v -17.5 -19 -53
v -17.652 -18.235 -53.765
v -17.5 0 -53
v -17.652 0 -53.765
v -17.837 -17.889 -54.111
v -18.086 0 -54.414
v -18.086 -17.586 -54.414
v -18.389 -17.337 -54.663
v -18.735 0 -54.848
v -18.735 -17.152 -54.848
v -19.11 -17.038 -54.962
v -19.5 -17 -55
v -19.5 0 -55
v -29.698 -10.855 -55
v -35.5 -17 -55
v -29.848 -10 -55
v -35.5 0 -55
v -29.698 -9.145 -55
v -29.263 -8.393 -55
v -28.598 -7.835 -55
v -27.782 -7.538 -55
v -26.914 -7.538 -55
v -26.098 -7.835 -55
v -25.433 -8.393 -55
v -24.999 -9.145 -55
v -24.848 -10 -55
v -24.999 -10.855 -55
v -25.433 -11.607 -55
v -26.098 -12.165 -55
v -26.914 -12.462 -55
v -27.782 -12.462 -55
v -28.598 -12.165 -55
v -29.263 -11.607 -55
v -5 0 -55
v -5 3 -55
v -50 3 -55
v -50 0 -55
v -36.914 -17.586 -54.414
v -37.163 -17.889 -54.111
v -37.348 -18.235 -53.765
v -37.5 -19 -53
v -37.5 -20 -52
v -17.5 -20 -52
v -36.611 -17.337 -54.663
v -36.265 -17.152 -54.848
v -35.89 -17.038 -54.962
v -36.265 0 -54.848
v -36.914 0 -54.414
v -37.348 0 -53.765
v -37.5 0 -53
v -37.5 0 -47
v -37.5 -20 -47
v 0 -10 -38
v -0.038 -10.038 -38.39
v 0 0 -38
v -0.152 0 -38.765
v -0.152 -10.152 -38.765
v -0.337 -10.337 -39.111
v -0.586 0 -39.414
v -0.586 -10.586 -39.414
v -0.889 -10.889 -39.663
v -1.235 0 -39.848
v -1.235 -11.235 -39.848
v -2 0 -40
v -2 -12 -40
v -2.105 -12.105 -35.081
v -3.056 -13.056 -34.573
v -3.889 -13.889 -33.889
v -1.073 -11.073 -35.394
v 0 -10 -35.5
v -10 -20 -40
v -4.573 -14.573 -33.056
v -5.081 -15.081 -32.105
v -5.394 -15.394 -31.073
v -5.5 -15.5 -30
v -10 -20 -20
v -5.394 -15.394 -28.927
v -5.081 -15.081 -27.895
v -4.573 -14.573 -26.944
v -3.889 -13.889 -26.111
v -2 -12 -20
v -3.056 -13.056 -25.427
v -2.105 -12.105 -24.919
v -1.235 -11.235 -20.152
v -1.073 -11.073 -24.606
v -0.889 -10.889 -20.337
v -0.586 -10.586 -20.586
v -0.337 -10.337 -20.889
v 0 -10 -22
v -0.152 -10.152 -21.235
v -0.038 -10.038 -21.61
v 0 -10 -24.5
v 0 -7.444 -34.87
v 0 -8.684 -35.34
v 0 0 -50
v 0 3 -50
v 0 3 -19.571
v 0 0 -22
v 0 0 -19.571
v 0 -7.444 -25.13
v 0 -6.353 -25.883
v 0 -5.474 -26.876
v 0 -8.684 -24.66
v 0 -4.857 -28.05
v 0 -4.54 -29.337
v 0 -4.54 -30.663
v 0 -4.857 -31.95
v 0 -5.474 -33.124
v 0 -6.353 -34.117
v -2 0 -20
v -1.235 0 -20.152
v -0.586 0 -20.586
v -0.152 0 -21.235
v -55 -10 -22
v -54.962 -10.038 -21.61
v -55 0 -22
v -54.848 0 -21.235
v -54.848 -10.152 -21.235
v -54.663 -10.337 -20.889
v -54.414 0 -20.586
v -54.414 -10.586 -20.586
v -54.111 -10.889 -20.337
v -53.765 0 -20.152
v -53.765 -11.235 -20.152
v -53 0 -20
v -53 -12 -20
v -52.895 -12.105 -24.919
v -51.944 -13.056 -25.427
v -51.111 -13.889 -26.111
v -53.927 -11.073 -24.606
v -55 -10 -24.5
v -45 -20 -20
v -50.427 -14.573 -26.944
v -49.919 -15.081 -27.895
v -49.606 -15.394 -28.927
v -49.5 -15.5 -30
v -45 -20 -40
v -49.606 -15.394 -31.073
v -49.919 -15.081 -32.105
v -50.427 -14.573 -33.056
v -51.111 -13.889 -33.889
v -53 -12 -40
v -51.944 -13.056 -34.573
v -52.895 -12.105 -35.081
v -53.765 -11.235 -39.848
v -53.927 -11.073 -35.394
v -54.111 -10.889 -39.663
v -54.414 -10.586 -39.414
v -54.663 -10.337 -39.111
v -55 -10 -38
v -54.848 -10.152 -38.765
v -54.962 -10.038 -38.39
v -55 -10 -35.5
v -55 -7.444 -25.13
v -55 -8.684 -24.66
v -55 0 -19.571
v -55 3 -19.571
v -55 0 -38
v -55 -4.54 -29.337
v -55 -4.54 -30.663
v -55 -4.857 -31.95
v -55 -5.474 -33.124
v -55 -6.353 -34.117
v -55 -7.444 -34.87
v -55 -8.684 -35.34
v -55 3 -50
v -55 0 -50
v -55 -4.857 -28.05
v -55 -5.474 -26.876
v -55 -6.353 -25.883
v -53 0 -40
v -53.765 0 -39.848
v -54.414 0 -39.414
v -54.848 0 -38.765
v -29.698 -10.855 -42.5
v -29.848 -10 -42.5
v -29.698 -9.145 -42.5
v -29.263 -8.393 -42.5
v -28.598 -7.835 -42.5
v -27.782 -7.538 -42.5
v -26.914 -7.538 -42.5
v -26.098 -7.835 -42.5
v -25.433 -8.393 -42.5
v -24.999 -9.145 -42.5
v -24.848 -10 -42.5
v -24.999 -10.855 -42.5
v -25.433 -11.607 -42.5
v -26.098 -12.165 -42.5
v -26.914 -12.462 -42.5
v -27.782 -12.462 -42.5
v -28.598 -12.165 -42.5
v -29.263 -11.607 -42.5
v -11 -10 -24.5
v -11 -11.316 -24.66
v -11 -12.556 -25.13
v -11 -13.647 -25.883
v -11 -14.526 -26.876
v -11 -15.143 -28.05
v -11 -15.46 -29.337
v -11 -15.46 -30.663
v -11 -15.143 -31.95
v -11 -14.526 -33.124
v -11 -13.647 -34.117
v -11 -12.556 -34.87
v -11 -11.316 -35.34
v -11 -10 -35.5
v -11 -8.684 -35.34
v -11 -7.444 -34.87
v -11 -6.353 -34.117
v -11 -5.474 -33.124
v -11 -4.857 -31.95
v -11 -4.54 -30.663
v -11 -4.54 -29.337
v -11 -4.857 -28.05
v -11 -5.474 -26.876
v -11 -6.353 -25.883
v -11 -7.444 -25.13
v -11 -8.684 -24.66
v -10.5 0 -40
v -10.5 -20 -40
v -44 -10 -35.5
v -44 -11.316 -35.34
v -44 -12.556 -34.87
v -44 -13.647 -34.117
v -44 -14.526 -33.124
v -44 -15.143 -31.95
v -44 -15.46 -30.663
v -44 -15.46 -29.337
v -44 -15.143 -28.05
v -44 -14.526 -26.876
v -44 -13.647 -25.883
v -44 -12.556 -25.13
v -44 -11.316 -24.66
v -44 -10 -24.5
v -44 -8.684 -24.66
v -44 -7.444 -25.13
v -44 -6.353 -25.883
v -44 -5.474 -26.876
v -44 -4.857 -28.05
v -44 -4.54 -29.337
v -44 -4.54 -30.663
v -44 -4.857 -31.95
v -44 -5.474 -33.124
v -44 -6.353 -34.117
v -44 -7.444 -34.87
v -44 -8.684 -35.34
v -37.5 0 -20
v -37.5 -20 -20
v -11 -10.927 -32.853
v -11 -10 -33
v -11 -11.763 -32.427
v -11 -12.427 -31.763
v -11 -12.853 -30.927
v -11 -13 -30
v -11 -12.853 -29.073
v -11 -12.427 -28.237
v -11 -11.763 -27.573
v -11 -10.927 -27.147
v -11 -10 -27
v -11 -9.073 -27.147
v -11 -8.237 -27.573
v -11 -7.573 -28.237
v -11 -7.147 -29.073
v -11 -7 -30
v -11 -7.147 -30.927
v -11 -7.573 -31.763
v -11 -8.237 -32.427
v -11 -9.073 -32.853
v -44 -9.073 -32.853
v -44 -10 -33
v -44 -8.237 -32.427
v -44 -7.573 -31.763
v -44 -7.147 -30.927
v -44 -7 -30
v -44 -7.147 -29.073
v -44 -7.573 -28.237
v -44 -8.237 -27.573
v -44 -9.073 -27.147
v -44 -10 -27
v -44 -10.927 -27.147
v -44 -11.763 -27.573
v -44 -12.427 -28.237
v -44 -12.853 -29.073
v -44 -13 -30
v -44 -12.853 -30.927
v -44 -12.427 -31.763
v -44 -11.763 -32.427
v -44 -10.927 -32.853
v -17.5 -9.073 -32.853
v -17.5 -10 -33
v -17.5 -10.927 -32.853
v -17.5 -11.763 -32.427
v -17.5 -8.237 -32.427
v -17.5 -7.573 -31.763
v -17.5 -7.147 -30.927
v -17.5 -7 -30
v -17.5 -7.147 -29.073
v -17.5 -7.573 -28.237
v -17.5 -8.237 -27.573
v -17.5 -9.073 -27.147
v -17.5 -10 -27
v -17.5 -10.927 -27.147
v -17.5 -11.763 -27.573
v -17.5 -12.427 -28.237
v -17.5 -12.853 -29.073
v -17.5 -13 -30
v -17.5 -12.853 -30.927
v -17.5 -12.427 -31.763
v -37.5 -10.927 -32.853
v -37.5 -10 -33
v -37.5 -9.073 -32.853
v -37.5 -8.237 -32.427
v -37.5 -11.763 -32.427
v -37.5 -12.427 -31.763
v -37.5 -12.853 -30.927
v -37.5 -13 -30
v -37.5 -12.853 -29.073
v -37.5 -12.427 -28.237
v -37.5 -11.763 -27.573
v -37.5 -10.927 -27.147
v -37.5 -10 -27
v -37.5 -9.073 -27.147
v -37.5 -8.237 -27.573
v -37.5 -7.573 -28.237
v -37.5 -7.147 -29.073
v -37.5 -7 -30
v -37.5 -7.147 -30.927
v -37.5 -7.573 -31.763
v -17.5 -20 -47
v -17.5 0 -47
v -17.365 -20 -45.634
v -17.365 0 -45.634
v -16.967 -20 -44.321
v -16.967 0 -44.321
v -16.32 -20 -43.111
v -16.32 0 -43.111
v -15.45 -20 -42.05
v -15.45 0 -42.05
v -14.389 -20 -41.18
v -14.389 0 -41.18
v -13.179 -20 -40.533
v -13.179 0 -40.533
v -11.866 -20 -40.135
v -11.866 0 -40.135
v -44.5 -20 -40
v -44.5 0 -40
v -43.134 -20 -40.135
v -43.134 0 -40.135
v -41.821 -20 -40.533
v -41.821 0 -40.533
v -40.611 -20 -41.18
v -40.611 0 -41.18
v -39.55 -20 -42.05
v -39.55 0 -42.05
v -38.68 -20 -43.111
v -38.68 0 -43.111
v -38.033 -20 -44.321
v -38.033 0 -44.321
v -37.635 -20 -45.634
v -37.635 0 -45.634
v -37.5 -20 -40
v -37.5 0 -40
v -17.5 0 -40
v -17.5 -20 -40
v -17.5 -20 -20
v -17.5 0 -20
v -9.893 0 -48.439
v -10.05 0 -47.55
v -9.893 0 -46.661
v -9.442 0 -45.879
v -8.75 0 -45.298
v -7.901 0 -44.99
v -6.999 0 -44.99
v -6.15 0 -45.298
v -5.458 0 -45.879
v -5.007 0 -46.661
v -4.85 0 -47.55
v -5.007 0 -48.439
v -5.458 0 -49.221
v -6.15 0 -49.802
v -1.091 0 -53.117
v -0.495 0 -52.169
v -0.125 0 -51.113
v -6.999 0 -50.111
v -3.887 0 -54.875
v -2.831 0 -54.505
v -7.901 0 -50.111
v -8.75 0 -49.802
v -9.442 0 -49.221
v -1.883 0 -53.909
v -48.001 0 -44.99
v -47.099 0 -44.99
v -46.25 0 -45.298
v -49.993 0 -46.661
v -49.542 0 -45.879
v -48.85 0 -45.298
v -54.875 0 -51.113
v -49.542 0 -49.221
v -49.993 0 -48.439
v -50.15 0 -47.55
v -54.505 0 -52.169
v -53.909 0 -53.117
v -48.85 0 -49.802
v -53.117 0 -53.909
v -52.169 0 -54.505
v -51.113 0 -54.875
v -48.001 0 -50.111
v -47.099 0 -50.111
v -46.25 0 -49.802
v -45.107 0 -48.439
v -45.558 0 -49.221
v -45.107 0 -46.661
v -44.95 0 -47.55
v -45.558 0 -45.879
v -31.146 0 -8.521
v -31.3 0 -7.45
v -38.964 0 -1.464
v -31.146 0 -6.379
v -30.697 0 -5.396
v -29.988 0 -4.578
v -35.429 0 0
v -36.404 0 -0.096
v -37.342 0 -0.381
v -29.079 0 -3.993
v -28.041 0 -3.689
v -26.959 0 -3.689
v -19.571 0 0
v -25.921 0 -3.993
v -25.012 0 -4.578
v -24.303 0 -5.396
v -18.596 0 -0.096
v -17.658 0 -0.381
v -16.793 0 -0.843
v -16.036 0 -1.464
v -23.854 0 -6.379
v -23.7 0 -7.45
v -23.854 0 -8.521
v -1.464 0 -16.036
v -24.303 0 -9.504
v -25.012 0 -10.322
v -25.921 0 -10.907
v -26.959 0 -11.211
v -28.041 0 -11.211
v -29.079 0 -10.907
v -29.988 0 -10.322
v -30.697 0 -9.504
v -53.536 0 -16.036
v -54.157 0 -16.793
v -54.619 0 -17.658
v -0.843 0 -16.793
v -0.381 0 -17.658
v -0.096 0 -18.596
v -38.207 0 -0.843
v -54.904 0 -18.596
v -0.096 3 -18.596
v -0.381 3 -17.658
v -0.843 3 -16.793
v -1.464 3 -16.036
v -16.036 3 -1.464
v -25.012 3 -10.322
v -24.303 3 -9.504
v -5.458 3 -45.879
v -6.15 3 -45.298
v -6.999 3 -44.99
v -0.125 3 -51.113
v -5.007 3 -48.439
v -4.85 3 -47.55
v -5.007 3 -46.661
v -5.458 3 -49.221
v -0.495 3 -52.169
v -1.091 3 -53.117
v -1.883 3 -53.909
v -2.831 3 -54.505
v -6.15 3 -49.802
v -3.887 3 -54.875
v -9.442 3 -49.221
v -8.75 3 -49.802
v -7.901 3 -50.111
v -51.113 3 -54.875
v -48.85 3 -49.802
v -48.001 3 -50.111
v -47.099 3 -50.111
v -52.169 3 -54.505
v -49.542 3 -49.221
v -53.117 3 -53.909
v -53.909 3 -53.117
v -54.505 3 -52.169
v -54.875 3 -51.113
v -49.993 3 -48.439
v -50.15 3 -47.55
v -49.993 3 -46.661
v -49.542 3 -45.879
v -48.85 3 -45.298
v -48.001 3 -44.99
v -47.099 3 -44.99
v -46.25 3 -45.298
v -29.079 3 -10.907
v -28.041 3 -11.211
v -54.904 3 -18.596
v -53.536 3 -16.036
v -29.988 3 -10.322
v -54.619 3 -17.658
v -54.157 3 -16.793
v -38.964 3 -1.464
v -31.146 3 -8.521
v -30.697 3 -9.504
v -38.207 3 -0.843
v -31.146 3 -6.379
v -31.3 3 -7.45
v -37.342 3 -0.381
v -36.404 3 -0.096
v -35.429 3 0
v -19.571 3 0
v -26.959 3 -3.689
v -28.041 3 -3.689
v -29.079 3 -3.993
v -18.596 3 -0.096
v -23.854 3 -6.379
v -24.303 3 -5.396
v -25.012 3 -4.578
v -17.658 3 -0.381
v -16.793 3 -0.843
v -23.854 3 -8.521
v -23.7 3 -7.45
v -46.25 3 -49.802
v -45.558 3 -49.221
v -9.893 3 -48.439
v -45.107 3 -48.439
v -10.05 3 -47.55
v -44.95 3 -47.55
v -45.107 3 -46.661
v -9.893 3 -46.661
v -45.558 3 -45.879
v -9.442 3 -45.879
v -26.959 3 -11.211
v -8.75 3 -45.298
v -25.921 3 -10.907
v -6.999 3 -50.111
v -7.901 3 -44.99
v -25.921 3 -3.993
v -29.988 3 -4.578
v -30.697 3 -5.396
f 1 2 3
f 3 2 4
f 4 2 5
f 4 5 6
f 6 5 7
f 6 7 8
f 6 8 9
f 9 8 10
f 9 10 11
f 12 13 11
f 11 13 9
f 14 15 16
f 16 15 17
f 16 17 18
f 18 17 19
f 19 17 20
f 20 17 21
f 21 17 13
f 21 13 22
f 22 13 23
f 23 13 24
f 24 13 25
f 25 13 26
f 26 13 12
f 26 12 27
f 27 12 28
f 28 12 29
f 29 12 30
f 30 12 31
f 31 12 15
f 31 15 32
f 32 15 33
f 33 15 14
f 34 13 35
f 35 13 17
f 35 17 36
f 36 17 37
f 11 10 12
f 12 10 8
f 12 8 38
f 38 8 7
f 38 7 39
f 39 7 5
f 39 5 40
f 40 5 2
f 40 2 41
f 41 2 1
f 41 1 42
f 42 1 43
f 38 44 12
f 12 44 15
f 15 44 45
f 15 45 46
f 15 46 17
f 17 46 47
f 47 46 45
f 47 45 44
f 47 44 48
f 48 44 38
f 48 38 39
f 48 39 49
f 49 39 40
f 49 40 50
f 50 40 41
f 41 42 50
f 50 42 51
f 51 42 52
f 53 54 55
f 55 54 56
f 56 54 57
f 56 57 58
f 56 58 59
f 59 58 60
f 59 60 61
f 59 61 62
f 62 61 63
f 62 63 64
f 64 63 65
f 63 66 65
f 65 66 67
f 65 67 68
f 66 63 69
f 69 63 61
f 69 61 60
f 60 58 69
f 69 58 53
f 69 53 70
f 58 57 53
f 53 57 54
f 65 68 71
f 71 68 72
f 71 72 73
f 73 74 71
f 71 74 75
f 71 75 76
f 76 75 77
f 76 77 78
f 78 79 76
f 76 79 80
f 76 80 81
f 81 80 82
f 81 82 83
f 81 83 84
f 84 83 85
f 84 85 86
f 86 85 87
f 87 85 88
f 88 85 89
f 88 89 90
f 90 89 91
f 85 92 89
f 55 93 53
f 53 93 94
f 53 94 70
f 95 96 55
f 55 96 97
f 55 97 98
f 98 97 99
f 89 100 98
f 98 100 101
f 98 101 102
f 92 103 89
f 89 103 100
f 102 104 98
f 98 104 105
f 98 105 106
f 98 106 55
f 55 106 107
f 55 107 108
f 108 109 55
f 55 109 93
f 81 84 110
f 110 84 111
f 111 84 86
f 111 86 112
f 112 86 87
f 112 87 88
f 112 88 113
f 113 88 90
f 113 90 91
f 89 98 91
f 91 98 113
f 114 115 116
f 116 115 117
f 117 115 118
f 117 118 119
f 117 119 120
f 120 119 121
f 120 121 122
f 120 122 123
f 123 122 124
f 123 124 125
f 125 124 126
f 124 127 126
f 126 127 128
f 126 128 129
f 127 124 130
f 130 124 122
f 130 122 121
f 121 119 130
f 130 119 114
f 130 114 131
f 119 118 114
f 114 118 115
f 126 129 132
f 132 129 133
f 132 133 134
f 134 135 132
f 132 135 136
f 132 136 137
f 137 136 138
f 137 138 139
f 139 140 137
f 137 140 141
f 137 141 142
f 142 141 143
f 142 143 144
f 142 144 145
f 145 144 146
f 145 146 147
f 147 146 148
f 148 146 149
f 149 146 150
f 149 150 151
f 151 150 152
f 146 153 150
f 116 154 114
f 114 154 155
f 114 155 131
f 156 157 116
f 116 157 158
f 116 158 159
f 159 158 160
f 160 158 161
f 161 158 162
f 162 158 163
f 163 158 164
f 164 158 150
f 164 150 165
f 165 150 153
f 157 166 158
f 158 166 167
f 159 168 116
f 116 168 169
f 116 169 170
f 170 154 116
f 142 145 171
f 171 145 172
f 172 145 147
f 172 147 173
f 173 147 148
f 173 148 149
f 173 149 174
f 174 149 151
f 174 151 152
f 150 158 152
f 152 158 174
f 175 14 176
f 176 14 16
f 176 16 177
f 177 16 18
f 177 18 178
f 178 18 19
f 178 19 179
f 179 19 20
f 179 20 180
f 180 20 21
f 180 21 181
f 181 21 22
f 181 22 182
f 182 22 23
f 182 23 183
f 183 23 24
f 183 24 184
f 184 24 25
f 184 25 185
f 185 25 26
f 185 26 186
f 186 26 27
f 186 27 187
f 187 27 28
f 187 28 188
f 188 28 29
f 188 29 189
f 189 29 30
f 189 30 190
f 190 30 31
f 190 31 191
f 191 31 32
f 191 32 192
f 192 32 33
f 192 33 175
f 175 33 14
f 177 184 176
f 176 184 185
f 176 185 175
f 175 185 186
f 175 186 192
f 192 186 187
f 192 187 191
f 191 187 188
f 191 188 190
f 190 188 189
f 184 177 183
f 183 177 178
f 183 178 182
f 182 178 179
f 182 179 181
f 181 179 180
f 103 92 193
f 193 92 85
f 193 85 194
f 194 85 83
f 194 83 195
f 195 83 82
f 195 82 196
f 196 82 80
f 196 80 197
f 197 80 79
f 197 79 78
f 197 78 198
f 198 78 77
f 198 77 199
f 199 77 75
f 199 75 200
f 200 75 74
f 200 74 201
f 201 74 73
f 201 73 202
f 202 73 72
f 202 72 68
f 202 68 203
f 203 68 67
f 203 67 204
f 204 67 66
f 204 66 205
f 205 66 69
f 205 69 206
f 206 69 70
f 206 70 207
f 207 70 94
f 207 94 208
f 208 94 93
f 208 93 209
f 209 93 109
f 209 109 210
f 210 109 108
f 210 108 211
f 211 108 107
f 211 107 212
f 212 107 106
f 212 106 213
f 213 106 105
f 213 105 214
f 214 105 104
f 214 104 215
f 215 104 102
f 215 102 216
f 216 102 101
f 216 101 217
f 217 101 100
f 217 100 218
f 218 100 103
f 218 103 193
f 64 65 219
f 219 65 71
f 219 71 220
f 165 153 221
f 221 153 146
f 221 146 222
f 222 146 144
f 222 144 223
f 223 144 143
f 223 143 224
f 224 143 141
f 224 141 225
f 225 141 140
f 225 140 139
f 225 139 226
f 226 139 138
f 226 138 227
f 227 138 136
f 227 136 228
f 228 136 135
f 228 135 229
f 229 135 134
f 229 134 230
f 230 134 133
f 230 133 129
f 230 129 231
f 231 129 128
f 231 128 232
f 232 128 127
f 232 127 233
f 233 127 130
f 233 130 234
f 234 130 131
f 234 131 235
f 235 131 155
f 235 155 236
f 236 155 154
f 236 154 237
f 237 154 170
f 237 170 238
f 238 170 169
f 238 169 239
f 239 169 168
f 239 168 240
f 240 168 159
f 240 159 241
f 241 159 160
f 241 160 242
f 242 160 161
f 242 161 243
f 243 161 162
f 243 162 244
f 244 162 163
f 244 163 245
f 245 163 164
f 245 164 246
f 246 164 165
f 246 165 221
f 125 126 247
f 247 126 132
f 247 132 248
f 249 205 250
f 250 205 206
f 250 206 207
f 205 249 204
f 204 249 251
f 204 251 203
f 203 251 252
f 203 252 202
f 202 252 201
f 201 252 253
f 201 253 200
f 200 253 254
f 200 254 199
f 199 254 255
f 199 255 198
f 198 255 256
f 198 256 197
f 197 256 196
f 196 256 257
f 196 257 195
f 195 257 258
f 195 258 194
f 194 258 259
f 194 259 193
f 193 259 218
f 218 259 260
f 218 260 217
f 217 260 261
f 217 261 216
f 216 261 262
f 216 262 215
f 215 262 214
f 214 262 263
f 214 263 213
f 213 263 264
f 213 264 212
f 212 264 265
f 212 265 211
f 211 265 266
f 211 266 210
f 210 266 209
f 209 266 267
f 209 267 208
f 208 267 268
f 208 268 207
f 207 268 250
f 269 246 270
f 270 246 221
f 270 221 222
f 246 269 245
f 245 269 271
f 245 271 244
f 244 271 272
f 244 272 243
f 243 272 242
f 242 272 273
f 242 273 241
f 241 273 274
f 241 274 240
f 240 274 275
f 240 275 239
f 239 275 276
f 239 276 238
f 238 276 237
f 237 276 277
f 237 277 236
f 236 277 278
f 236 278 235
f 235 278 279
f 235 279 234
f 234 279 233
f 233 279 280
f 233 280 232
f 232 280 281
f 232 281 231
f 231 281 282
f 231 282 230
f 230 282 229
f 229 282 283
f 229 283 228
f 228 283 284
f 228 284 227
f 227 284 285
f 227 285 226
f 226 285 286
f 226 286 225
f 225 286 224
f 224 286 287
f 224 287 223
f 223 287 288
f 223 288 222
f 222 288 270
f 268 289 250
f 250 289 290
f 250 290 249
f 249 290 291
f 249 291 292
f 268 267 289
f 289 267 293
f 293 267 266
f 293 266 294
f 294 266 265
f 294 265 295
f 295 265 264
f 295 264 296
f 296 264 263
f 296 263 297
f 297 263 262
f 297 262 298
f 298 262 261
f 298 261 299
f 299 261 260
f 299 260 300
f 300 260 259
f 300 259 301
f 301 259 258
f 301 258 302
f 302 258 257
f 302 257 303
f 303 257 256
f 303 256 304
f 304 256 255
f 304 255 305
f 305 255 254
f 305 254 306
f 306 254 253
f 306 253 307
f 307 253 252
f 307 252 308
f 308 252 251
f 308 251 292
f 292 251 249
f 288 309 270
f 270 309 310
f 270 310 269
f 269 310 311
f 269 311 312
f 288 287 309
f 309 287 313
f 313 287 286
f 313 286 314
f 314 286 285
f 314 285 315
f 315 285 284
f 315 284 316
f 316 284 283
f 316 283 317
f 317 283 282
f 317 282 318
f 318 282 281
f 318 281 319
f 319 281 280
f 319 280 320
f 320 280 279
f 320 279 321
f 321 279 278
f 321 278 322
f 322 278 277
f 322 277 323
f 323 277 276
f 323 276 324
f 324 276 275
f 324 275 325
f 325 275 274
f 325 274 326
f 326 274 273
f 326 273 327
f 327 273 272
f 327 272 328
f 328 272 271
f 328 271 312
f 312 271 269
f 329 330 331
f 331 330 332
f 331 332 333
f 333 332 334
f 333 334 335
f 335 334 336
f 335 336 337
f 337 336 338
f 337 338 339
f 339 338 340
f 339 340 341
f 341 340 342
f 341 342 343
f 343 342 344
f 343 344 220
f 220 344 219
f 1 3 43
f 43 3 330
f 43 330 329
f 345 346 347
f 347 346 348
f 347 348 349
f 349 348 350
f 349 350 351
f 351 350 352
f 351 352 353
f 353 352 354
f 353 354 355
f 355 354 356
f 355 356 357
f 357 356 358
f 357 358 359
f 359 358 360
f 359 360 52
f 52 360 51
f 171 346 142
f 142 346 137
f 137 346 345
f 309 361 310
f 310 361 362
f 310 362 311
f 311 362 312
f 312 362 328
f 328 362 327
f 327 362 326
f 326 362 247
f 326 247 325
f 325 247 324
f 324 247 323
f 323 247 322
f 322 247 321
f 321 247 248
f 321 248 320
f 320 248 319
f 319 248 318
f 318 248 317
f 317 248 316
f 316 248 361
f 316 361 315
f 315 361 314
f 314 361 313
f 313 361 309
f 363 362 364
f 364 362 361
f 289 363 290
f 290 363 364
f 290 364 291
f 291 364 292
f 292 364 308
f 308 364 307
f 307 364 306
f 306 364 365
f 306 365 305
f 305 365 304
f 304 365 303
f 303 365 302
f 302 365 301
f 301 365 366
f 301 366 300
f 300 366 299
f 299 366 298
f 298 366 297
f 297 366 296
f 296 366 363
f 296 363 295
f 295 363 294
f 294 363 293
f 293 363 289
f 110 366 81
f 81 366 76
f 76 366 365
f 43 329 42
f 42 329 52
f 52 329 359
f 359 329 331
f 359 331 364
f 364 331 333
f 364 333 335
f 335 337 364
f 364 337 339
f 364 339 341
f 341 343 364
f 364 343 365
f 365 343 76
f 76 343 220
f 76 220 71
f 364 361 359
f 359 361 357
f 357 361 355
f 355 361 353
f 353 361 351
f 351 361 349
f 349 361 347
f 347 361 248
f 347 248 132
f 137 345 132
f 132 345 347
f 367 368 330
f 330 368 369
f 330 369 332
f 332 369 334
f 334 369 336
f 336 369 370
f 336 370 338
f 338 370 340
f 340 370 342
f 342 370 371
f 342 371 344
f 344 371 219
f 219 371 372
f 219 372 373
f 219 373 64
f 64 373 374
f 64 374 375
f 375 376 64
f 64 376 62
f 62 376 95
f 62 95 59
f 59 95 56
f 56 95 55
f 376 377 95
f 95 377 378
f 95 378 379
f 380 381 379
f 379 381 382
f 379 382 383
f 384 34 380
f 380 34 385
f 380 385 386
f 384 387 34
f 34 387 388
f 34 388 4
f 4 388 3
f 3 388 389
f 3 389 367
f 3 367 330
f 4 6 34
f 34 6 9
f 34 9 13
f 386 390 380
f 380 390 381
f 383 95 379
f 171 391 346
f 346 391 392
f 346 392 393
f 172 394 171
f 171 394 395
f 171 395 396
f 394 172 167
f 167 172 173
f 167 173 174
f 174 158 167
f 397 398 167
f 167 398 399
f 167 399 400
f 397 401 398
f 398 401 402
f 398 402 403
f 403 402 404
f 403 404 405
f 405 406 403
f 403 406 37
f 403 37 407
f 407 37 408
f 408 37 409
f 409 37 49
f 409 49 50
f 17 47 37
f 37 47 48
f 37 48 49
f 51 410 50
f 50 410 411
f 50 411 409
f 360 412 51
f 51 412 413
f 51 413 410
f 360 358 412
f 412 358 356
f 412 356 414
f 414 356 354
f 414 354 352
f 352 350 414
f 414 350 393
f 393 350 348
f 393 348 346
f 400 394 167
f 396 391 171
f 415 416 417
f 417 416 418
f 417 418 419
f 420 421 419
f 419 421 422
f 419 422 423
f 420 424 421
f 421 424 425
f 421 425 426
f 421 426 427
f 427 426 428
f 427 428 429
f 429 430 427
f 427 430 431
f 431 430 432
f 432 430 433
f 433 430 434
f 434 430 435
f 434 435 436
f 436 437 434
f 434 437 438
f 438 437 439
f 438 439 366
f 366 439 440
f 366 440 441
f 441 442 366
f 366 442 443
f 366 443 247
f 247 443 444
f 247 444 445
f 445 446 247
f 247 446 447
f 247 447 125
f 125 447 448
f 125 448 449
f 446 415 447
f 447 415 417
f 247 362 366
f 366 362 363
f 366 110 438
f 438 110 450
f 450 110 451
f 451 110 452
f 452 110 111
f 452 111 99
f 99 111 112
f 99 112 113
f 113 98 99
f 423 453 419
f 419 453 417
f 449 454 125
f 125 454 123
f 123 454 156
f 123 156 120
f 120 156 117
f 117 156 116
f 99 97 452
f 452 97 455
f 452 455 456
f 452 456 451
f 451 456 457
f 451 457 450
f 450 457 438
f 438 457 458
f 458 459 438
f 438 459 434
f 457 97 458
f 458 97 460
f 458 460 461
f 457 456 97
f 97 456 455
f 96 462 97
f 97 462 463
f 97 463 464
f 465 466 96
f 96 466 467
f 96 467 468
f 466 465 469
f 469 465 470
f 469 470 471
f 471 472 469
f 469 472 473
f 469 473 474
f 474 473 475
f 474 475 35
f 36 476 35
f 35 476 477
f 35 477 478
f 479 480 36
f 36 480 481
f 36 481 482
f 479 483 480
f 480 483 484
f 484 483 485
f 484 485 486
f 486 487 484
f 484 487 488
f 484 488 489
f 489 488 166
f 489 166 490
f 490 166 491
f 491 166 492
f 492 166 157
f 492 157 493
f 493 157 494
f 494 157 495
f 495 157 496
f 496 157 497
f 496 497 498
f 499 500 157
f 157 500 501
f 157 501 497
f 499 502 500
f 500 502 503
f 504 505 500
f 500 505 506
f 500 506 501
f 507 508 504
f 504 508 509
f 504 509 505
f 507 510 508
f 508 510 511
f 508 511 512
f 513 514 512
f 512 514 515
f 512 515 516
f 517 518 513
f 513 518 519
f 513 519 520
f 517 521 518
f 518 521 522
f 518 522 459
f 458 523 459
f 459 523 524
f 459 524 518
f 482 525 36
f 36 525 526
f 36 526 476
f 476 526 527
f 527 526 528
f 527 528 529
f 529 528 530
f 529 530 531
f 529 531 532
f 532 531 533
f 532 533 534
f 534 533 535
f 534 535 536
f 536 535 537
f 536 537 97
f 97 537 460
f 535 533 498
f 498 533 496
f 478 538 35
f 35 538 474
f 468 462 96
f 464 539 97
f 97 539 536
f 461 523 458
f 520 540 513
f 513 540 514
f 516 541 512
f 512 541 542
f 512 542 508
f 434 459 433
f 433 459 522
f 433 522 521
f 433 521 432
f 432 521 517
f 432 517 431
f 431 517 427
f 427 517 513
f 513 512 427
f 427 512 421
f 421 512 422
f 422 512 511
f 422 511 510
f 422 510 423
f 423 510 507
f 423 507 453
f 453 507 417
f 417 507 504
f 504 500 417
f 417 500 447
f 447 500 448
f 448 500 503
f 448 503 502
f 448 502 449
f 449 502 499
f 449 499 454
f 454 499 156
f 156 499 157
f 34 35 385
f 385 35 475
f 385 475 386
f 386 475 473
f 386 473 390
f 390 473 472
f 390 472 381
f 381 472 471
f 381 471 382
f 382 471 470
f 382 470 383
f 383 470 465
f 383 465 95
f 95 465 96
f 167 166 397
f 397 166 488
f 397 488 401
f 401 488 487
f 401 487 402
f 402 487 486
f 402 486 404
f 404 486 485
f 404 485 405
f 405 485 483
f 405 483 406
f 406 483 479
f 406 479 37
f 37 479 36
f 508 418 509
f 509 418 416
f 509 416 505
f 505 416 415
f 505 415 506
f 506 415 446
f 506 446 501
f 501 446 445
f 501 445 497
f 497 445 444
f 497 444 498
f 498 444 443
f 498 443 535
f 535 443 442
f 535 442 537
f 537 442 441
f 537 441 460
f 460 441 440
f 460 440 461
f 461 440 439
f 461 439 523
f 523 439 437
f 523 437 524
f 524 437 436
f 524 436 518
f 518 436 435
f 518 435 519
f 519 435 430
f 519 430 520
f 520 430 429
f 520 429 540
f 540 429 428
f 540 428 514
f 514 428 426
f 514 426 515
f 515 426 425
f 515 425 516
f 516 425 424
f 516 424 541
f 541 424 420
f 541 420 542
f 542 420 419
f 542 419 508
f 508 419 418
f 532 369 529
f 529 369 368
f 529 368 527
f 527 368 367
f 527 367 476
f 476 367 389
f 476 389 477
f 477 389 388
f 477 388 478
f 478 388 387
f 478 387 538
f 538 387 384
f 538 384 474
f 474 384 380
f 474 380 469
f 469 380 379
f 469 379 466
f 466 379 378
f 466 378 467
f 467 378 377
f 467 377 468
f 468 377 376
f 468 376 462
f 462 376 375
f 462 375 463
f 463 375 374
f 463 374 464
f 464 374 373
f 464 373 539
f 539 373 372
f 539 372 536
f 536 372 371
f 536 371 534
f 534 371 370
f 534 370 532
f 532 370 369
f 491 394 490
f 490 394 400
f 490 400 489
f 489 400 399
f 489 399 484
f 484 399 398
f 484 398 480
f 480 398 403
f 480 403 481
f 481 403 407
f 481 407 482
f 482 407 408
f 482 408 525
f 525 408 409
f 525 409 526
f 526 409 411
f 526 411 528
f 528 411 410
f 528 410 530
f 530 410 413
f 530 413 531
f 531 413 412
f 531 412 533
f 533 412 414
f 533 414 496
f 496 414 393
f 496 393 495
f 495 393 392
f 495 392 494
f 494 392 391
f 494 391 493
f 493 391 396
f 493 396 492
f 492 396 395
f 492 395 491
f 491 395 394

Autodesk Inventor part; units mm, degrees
ref_plane "YZ Plane" through (0, 0, 0) normal (1, 0, 0) x (0, 1, 0)
ref_plane "XZ Plane" through (0, 0, 0) normal (0, 1, 0) x (-1, 0, 0)
ref_plane "XY Plane" through (0, 0, 0) normal (0, 0, 1) x (1, 0, 0)
sketch "Sketch1" plane through (0, 0, 0) normal (0, 1, 0) x (-1, 0, 0)
  line L0 (0, 0) -> (55, 0)
  line L1 (55, 0) -> (55, -55)
  line L2 (55, -55) -> (0, -55)
  line L3 (0, -55) -> (0, 0)
  line L4 (47.55, -7.45) -> (7.45, -7.45) construction
  line L5 (7.45, -7.45) -> (7.45, -47.55) construction
  line L6 (7.45, -47.55) -> (47.55, -47.55) construction
  line L7 (47.55, -47.55) -> (47.55, -7.45) construction
  circle A0 centre (47.55, -47.55) radius 2.6
  circle A1 centre (7.45, -47.55) radius 2.6
  circle A2 centre (27.5, -7.45) radius 3.8
  line L8 (0, -17.5) -> (17.5, 0)
  line L9 (37.5, 0) -> (55, -17.5)
  dimension "d0" = 55
  dimension "d1" = 55
  dimension "d2" = 40.1
  dimension "d3" = 40.1
  dimension "d6" = 5.2
  dimension "d7" = 5.2
  dimension "d8" = 7.45
  dimension "d9" = 7.45
  dimension "d14" = 7.6
  dimension "d55" = 20
  dimension "d56" = 10
extrude "Extrusion1" add sketch "Sketch1" along normal blind 3 contours L0 L9 L1 L2 L3 L8
fillet "Fillet1" radius 5 6 edges at (-55, 1.5, -55) (0, 1.5, -55) (-55, 1.5, -17.5) (-37.5, 1.5, 0) (-17.5, 1.5, 0) (0, 1.5, -17.5)
sketch "Sketch2" plane through (0, 0, 0) normal (0, -1, 0) x (1, 0, 0)
  line L0 (-17.5, -40) -> (-37.5, -40)
  line L1 (-37.5, -40) -> (-37.5, -20)
  line L2 (-37.5, -20) -> (-17.5, -20)
  line L3 (-17.5, -20) -> (-17.5, -40)
  line L4 (-5, -55) -> (-50, -55) projected
  line L5 (-17.5, -40) -> (-37.5, -40)
  line L6 (-37.5, -47) -> (-37.5, -55)
  line L7 (-37.5, -55) -> (-17.5, -55)
  line L8 (-17.5, -55) -> (-17.5, -47)
  line L9 (0, -19.5711) -> (0, -50) projected
  line L10 (-55, -50) -> (-55, -19.5711) projected
  line L11 (-10.5, -40) -> (0, -40)
  line L12 (0, -40) -> (0, -20)
  line L13 (0, -20) -> (-17.5, -20)
  line L14 (-17.5, -20) -> (-17.5, -40)
  line L15 (-44.5, -40) -> (-55, -40)
  line L16 (-55, -40) -> (-55, -20)
  line L17 (-55, -20) -> (-37.5, -20)
  line L18 (-37.5, -20) -> (-37.5, -40)
  arc A0 (-10.5, -40) -> (-17.5, -47) centre (-10.5, -47) ccw
  arc A1 (-37.5, -47) -> (-44.5, -40) centre (-44.5, -47) ccw
  point P0 (0, -40)
  point P1 (-17.5, -55)
  dimension "d68" = 20
  dimension "d69" = 20
  dimension "d70" = 55
  dimension "d71" = 17.5
  dimension "d72" = 15
  dimension "d73" = 7
extrude "Extrusion8" add sketch "Sketch2" along normal blind 20 contours L3 L13 L9 L11 A0 L8 L4 L6 A1 L15 L10 L17 L1 L0
sketch "Sketch6" plane through (-55, 0, -50) normal (-1, 0, 0) x (0, 0, 1)
  line L0 (10, -20) -> (30, -20) construction
  line L1 (10, 0) -> (30, 0) construction
  line L2 (10, -20) -> (30, 0) construction
  circle A0 centre (20, -10) radius 3
  point P0 (50, 0)
  dimension "d44" = 6
extrude "Extrusion9" cut sketch "Sketch6" against normal through all
sketch "Sketch7" plane through (-55, 0, -50) normal (-1, 0, 0) x (0, 0, 1)
  circle A0 centre (20, -10) radius 3 projected
  circle A1 centre (20, -10) radius 5.5
  point P0 (50, 0)
  dimension "d47" = 11
extrude "Extrusion10" cut sketch "Sketch7" against normal blind 11 contours A0 | A1
sketch "Sketch8" plane through (0, 0, -50) normal (1, 0, 0) x (0, 0, -1)
  line L0 (-30, 0) -> (-30, -20) construction
  line L1 (-10, 0) -> (-30, 0) construction
  line L2 (-30, -20) -> (-10, 0) construction
  circle A0 centre (-20, -10) radius 5.5 projected
  circle A1 centre (-20, -10) radius 5.5 construction
  point P0 (-50, 0)
extrude "Extrusion11" cut sketch "Sketch8" against normal blind 11
chamfer "Chamfer3" distance 10 angle 45 2 edges at (-55, -20, -30) (0, -20, -30)
sketch "Sketch11" plane through (-5, 3, -55) normal (0, 0, -1) x (-1, 0, 0)
  line L0 (32.5, -23) -> (12.5, -23) construction
  line L1 (12.5, -23) -> (32.1967, -3) construction
  line L2 (33.9645, -3) -> (30.4289, -3) construction
  circle A0 centre (22.3483, -13) radius 2.5
  point P0 (-5, -3)
  dimension "d74" = 5
extrude "Extrusion14" cut sketch "Sketch11" against normal blind 12.5
chamfer "Chamfer4" distance 3 angle 45 1 edges at (-27.5, -20, -55)
fillet "Fillet2" radius 2 6 edges at (-55, -5, -40) (-55, -5, -20) (0, -5, -20) (0, -5, -40) (-37.5, -8.5, -55) (-17.5, -8.5, -55)
equation "\"d1\" = d0"
equation "\"d3\" = d2"
equation "\"d8\" = -0.5 * d2 + 0.5 * d0"
equation "\"d9\" = -0.5 * d3 + 0.5 * d1"
equation "\"d71\" = -0.5 * d68 + 0.5 * d70"
properties part number "Gantry Plate" material "PC/ABS Plastic"
